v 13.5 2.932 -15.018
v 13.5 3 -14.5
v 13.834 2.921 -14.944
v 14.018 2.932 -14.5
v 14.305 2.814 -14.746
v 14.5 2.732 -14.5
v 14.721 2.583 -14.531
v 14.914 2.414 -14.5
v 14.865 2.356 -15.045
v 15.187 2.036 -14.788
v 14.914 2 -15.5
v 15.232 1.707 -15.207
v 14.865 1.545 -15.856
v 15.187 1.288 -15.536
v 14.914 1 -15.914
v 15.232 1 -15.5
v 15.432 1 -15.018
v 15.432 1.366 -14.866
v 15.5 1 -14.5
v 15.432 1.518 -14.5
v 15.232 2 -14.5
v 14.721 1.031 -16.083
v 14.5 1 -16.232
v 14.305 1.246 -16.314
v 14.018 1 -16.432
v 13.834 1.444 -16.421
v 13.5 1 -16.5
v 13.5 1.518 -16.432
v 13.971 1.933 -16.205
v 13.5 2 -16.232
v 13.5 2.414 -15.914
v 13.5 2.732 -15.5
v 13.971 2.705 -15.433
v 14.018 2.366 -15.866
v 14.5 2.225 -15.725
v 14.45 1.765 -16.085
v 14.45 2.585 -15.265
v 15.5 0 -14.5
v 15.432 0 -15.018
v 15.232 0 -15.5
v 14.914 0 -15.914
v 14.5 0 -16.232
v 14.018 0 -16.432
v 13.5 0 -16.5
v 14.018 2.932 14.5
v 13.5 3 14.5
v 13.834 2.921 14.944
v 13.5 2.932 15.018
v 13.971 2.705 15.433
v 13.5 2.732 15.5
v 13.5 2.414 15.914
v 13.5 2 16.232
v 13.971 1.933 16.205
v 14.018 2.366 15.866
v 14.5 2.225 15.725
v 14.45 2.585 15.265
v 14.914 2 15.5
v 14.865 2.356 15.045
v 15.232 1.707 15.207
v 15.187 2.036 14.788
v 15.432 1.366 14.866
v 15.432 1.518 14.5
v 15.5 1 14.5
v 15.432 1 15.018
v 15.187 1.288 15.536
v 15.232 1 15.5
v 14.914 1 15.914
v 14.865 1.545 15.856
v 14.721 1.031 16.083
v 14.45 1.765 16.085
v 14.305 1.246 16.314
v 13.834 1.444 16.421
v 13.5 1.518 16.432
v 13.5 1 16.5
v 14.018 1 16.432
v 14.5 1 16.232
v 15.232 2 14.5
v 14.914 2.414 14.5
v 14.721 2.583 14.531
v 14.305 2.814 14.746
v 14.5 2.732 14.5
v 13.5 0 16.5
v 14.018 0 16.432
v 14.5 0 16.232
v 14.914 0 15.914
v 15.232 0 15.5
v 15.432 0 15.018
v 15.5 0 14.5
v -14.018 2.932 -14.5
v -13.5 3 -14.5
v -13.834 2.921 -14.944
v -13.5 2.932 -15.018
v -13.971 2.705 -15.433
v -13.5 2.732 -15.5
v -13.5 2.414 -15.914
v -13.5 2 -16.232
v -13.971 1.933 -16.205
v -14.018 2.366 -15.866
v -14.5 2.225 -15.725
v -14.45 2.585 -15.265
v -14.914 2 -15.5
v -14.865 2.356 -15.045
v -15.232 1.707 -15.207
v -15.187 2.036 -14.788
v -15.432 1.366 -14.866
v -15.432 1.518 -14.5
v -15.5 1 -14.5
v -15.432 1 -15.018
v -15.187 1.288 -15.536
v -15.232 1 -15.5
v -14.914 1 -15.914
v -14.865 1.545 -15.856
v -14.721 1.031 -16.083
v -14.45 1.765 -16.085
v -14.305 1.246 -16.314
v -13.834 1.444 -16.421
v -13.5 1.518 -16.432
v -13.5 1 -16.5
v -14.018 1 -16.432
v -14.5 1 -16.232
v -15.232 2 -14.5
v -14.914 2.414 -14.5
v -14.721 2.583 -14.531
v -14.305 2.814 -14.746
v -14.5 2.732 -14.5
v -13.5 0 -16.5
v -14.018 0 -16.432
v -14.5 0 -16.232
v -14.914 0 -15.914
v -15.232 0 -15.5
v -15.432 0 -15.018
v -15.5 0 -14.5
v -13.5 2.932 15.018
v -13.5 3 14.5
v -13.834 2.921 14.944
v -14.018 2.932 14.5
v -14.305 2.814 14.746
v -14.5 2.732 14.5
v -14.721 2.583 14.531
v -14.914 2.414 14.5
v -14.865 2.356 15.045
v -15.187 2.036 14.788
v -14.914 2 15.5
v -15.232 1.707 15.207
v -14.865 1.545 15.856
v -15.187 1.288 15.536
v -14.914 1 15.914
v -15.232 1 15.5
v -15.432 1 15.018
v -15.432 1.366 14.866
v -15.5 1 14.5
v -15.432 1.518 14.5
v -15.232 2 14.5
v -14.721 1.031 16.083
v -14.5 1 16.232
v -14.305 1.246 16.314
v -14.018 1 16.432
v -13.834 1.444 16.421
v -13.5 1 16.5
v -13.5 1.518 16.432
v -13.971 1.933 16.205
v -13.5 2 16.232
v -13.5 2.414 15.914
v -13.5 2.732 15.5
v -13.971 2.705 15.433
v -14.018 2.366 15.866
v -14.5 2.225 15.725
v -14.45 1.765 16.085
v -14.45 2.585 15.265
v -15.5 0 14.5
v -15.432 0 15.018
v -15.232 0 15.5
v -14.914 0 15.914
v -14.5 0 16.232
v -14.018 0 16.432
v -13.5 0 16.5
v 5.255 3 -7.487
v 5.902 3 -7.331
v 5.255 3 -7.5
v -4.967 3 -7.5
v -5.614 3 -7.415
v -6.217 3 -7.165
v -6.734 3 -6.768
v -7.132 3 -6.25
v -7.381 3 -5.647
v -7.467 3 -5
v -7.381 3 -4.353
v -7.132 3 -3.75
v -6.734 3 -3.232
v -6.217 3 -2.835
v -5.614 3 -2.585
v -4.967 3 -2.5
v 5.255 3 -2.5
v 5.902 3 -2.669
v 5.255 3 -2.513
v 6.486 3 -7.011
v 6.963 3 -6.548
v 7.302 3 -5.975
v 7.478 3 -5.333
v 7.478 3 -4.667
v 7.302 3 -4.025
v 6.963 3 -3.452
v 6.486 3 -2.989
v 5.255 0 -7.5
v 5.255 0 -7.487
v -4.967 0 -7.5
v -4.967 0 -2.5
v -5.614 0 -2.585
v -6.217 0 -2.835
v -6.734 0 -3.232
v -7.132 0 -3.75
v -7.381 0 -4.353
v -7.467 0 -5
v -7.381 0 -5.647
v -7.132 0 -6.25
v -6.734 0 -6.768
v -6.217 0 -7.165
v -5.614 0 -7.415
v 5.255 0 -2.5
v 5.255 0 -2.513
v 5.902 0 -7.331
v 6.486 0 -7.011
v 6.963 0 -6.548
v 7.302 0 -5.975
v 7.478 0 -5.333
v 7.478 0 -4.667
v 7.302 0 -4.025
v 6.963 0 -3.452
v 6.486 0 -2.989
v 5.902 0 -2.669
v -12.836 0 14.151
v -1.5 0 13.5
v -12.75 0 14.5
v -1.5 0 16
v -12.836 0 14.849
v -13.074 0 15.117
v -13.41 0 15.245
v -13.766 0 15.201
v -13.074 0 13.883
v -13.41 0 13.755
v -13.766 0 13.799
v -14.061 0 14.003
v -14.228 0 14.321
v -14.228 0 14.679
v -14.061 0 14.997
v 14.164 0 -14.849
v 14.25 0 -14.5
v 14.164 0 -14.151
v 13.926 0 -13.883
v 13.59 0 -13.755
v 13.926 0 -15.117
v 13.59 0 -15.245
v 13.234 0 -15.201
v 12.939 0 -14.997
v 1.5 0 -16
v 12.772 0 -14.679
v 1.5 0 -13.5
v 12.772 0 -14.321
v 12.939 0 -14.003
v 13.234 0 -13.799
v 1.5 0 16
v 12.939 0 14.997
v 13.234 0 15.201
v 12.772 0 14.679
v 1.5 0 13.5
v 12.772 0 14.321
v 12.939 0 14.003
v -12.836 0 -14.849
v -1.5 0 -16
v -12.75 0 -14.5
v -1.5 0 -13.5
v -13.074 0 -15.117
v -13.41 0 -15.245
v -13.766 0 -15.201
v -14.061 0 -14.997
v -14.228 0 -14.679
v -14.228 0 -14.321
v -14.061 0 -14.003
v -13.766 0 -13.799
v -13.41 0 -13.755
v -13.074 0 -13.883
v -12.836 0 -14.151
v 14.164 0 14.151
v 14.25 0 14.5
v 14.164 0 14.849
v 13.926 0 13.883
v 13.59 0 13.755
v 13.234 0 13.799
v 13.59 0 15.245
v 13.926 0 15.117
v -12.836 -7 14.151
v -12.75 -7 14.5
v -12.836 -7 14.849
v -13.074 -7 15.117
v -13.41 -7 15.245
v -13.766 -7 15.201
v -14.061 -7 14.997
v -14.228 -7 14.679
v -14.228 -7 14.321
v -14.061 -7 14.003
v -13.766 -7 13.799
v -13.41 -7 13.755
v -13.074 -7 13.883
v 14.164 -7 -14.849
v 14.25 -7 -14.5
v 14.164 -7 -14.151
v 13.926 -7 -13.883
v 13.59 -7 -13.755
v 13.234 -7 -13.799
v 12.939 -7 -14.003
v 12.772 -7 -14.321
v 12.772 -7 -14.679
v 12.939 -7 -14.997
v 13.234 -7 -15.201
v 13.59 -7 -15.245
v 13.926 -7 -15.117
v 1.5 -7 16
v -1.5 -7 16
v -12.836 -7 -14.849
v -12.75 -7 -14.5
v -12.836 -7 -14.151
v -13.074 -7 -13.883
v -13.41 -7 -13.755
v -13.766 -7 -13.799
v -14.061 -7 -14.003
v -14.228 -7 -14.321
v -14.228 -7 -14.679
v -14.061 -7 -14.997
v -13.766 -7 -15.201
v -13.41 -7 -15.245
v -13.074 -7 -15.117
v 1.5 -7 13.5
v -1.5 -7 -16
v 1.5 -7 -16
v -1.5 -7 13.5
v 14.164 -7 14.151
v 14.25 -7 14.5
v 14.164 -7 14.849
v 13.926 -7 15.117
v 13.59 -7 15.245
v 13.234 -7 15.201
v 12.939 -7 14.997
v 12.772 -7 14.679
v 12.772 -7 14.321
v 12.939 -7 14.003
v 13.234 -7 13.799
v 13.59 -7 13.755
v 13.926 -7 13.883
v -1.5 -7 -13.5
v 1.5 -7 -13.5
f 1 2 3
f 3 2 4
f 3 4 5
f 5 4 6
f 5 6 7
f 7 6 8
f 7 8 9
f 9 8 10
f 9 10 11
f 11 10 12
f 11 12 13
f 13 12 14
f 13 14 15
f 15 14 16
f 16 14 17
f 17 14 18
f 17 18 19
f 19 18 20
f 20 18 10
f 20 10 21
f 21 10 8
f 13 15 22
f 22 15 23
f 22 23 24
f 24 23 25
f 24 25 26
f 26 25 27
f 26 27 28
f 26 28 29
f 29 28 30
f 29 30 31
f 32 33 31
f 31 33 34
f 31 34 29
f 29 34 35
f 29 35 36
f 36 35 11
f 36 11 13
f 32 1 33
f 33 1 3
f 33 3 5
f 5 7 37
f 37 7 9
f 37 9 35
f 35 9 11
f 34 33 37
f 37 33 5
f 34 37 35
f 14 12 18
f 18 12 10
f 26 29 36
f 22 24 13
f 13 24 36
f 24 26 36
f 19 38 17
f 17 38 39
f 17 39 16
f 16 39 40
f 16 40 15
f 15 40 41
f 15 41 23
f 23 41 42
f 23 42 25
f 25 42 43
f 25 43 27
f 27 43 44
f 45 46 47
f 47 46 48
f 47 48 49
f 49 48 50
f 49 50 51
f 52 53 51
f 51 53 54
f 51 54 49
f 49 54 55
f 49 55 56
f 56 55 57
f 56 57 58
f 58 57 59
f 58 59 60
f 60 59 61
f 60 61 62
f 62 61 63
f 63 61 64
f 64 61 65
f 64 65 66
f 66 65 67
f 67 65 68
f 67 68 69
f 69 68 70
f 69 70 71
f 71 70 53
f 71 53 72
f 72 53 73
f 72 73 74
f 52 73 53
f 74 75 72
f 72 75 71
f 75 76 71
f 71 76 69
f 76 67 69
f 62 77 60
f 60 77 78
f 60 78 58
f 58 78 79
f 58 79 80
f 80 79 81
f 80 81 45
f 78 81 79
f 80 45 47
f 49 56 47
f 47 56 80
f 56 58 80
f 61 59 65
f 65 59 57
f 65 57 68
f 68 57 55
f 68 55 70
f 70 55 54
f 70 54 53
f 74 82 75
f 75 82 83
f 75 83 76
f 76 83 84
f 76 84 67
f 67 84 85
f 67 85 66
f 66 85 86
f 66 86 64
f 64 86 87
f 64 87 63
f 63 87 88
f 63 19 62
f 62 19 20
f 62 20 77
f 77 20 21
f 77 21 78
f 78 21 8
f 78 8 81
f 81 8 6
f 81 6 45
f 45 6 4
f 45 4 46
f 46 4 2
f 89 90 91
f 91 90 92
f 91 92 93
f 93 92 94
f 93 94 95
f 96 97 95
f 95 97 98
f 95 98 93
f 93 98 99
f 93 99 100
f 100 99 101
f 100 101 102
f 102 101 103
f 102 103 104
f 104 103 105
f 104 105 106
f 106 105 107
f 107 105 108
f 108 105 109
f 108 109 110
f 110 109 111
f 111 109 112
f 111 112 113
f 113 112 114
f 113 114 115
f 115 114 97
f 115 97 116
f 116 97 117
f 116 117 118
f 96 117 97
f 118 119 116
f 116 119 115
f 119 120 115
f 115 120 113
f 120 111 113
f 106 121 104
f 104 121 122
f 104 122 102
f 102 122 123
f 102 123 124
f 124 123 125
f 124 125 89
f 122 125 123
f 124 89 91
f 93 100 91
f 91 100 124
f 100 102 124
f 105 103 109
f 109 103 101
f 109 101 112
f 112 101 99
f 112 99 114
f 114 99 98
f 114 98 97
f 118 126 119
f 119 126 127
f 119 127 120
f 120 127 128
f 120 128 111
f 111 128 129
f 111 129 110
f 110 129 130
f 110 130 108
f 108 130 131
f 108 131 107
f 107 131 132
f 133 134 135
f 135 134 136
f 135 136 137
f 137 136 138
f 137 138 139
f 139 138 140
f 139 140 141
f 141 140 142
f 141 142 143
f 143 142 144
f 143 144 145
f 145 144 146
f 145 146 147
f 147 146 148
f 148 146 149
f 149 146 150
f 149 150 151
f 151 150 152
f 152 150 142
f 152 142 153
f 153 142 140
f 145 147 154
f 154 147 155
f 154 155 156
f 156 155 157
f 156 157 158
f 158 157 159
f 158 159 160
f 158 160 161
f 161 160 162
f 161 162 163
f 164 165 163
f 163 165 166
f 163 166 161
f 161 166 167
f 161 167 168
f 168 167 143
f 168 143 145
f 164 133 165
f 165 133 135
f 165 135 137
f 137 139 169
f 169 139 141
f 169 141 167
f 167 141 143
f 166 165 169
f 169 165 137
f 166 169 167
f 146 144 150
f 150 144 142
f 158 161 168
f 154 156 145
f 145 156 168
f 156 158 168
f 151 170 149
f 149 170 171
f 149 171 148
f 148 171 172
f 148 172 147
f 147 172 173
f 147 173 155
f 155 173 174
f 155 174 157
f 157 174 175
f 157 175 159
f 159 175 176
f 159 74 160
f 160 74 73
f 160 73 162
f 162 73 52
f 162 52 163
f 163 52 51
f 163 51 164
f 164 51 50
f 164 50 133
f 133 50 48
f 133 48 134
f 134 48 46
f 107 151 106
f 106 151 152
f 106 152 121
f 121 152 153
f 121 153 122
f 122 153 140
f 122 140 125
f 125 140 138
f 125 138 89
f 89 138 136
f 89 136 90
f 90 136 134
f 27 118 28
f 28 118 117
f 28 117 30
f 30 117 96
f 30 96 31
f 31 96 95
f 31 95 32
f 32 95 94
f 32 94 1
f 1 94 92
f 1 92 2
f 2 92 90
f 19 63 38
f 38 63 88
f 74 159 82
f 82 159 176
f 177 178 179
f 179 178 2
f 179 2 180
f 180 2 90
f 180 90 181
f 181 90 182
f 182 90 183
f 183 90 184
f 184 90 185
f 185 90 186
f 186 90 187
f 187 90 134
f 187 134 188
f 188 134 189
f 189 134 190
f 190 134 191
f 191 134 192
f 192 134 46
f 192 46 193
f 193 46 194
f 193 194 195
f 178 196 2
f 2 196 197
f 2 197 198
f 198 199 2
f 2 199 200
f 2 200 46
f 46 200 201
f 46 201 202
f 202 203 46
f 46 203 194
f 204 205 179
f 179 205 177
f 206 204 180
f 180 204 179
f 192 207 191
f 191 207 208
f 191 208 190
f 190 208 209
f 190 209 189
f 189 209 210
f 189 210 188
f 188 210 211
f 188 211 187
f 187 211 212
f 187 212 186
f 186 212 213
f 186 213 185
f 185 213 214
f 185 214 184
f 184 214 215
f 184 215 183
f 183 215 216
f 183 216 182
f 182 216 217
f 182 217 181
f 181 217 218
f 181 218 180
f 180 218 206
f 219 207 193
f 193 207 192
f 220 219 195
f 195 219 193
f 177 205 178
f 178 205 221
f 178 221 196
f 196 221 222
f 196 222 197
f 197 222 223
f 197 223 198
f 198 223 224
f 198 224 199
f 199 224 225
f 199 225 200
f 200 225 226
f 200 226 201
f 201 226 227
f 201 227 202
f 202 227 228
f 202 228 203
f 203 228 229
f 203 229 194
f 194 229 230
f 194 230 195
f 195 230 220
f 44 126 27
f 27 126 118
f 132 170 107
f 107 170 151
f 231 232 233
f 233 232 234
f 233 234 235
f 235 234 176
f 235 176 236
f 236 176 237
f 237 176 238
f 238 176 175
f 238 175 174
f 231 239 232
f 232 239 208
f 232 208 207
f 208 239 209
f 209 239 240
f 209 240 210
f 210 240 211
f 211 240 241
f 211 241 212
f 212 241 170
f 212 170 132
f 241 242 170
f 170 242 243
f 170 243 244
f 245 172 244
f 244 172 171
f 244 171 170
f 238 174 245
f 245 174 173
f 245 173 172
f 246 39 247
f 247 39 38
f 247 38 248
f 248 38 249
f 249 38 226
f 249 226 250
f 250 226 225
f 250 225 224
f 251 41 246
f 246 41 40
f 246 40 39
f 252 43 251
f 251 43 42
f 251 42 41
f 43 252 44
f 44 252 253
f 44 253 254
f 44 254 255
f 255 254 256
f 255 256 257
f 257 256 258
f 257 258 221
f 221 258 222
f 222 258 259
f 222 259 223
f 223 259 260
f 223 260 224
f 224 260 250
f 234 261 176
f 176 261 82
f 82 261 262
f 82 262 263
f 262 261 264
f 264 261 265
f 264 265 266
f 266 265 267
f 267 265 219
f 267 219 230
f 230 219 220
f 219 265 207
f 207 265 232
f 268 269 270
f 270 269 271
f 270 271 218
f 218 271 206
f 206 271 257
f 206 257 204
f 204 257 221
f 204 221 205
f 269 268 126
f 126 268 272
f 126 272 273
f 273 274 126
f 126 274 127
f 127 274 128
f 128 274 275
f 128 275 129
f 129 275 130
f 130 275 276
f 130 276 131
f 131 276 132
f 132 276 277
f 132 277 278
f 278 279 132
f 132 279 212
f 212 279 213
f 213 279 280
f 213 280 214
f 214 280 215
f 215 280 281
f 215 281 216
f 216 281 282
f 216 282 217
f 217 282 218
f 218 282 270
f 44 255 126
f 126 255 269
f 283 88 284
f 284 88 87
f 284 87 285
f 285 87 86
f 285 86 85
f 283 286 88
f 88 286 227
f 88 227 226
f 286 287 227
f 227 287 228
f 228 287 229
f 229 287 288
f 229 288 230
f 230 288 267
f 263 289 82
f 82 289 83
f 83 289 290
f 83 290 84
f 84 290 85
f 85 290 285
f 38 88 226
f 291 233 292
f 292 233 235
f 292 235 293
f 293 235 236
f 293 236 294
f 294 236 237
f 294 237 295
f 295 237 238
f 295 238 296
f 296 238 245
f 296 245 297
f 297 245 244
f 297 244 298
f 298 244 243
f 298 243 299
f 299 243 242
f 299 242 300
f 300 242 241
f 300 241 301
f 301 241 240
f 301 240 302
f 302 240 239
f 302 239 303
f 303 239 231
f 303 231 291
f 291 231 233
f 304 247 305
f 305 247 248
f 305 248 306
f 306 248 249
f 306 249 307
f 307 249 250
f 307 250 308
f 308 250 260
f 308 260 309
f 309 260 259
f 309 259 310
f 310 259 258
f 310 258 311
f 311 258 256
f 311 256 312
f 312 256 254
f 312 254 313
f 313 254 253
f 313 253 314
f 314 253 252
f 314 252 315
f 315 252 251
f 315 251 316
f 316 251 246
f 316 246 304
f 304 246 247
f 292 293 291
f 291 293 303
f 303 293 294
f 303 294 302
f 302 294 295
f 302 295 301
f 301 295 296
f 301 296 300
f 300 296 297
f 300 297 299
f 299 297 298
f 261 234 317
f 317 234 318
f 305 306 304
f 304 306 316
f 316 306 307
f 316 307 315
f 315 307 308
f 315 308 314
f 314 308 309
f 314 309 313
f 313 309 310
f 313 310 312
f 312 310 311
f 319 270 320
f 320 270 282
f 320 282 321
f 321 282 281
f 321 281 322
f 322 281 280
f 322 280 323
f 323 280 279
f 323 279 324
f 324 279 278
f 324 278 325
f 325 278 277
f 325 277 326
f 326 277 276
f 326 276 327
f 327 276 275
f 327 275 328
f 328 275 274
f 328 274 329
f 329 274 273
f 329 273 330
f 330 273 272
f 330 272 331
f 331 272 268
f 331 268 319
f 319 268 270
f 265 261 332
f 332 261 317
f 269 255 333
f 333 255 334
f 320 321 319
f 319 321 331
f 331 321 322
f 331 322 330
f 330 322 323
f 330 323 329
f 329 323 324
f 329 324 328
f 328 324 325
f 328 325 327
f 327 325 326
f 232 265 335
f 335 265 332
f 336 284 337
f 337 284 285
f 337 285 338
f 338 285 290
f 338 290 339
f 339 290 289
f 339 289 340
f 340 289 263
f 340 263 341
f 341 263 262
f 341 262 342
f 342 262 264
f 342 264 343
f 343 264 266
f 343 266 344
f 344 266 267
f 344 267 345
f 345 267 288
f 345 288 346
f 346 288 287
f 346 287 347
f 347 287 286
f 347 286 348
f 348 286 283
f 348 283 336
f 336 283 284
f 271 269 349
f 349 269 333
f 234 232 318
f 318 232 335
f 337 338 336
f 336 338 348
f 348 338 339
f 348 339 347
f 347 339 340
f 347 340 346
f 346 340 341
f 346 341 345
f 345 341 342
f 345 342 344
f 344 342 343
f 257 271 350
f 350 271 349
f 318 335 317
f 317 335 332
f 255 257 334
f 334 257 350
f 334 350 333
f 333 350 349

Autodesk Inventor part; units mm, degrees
ref_plane "YZ Plane" through (0, 0, 0) normal (1, 0, 0) x (0, 1, 0)
ref_plane "XZ Plane" through (0, 0, 0) normal (0, 1, 0) x (-1, 0, 0)
ref_plane "XY Plane" through (0, 0, 0) normal (0, 0, 1) x (1, 0, 0)
sketch "Boceto1" plane through (0, 0, 0) normal (0, 1, 0) x (-1, 0, 0)
  line L0 (15.5, 16.5) -> (-15.5, 16.5)
  line L1 (-15.5, 16.5) -> (-15.5, -16.5)
  line L2 (-15.5, -16.5) -> (15.5, -16.5)
  line L3 (15.5, -16.5) -> (15.5, 16.5)
  line L4 (-15.5, 16.5) -> (15.5, -16.5) construction
  circle A0 centre (15.5, -16.5) radius 0
  line L5 (0, -20.441182) -> (0, -13.180985)
  circle A1 centre (-15.5, -16.5) radius 0
  line L6 (0, 0) -> (-6.703667, 0)
  circle A2 centre (15.5, 16.5) radius 0
  circle A3 centre (-15.5, 16.5) radius 0
  line L7 (-1.743284, -16.5) -> (-1.743284, -13.5)
  line L8 (-1.743284, -13.5) -> (-1.743284, 1.5)
  line L9 (-1.743284, 1.5) -> (-1.743284, 3.5)
  line L10 (-1.743284, 3.5) -> (-1.743284, 13.5)
  line L11 (-1.743284, 13.5) -> (-1.743284, 16.5)
  line L12 (15.5, 0) -> (12.5, 0)
  line L13 (12.5, 0) -> (-12.5, 0)
  line L14 (-12.5, 0) -> (-15.5, 0)
  line L15 (-0.653653, 1.5) -> (-0.653653, -3.5)
  line L16 (12.5, 0) -> (12.5, -5)
  line L17 (12.5, -5) -> (2.466636, -5)
  line L18 (-15.5, 0) -> (-15.5, -5)
  line L19 (-15.5, -5) -> (-12.5, -5)
  circle A4 centre (4.966636, -5) radius 2.5
  line L20 (0, -8.467064) -> (0, -3.5)
  line L21 (12.5, -5) -> (7.5, -5)
  line L22 (12.5, -5) -> (-15.5, -5)
  line L23 (-12.5, -5) -> (-7.5, -5)
  line L24 (-7.5, -5.492671) -> (-7.5, -4.332105)
  line L25 (-7.5, -7.321441) -> (-7.5, -3.5)
  line L26 (-7.5, -5) -> (-3.010459, -5)
  line L27 (-5.25523, -5) -> (-5.25523, -7.5)
  line L28 (-5.25523, -7.5) -> (-3.485236, -7.5)
  line L29 (-5.25523, -5) -> (-5.25523, -2.5)
  line L30 (-5.25523, -2.5) -> (-3.924845, -2.5)
  circle A5 centre (-5, -5) radius 2.5
  line L31 (4.966636, -7.5) -> (-5.25523, -7.5)
  line L32 (-5.25523, -2.5) -> (4.966636, -2.5)
  point P0 (-5.25523, -2.513063)
  point P1 (-5.25523, -7.486937)
  dimension "d0" = 31
  dimension "d1" = 33
  dimension "d3" = 3
  dimension "d4" = 15
  dimension "d5" = 2
  dimension "d6" = 10
  dimension "d7" = 3
  dimension "d8" = 3
  dimension "d9" = 25
  dimension "d10" = 3
  dimension "d11" = 5
  dimension "d12" = 5
  dimension "d14" = 5
  dimension "d15" = 3
  dimension "d16" = 5
  dimension "d17" = 5
  dimension "d19" = 5
  dimension "d21" = 2.5
  dimension "d22" = 2.5
sketch "Boceto1 outline for Extrusión1" plane through (0, 0, 0) normal (0, 1, 0) x (-1, 0, 0)
  line L0 (-15.5, -16.5) -> (15.5, -16.5)
  line L1 (-15.5, 16.5) -> (-15.5, -16.5)
  line L2 (15.5, -16.5) -> (15.5, 16.5)
  line L3 (15.5, 16.5) -> (-15.5, 16.5)
  arc A0 (-5.25523, -7.486937) -> (-5.25523, -2.513063) centre (-5, -5) cw
  line L4 (-5.25523, -7.5) -> (-5.25523, -7.486937)
  line L5 (-3.485236, -7.5) -> (-5.25523, -7.5)
  line L6 (4.966636, -7.5) -> (-3.485236, -7.5)
  arc A1 (4.966636, -2.5) -> (4.966636, -7.5) centre (4.966636, -5) cw
  line L7 (-3.924845, -2.5) -> (4.966636, -2.5)
  line L8 (-5.25523, -2.5) -> (-3.924845, -2.5)
  line L9 (-5.25523, -2.513063) -> (-5.25523, -2.5)
extrude "Extrusión1" add sketch "Boceto1 outline for Extrusión1" along normal blind 3
fillet "Empalme1" radius 2 8 edges at (-15.5, 1.5, 16.5) (-15.5, 3, 0) (-15.5, 1.5, -16.5) (0, 3, -16.5) (15.5, 3, 0) (0, 3, 16.5) (15.5, 1.5, 16.5) (15.5, 1.5, -16.5)
sketch "Boceto2" plane through (0, 0, 0) normal (0, -1, 0) x (1, 0, 0)
  line L0 (-13.5, -14.5) -> (13.5, -14.5)
  circle A0 centre (13.5, -14.5) radius 0.75
  line L1 (0, -0.514663) -> (0, 1.763645)
  circle A1 centre (-13.5, -14.5) radius 0.75
  line L2 (0.998187, 0) -> (-3.186461, 0)
  circle A2 centre (13.5, 14.5) radius 0.75
  circle A3 centre (-13.5, 14.5) radius 0.75
  arc A4 (15.5, 14.5) -> (13.5, 16.5) centre (13.5, 14.5) ccw
  arc A5 (-13.5, 16.5) -> (-15.5, 14.5) centre (-13.5, 14.5) ccw
  arc A6 (-15.5, -14.5) -> (-13.5, -16.5) centre (-13.5, -14.5) ccw
  arc A7 (13.5, -16.5) -> (15.5, -14.5) centre (13.5, -14.5) ccw
  line L3 (-15.5, -14.5) -> (-15.5, 14.5)
  line L4 (-15.5, -14.5) -> (-1.5, -14.5)
  line L5 (-1.5, -14.5) -> (1, -14.5)
  line L6 (13.5, -14.5) -> (13.5, -13.5)
  line L7 (13.5, -14.5) -> (13.5, 14.5)
  line L8 (13.5, -13.5) -> (-13.5, -13.5)
  line L9 (-13.5, 14.5) -> (-13.5, -14.5)
  line L10 (15.5, 14.5) -> (15.5, -14.5)
  line L11 (15.5, -13.5) -> (1.5, -13.5)
  line L12 (-15.5, -13.5) -> (-1.5, -13.5)
  line L13 (1.5, -13.5) -> (1.5, -16)
  line L14 (1.5, -16) -> (-1.5, -16)
  line L15 (-1.5, -16) -> (-1.5, -13.5)
  line L16 (-1.5, 14.5) -> (1, 14.5)
  line L17 (1.5, 13.5) -> (1.5, 16)
  line L18 (1.5, 16) -> (-1.5, 16)
  line L19 (-1.5, 16) -> (-1.5, 13.5)
  line L20 (13.5, 14.5) -> (-13.5, 14.5)
  line L21 (0.770935, 14.5) -> (1.5, 14.5)
  line L22 (-1.5, 16) -> (-1.5, 13.5)
  line L23 (1.5, 13.5) -> (-1.5, 13.5)
  dimension "d26" = 1.5
  dimension "d27" = 14
  dimension "d28" = 2.5
  dimension "d29" = 1
  dimension "d30" = 14
  dimension "d31" = 14
  dimension "d32" = 2.5
extrude "Extrusión2" add sketch "Boceto2" along normal blind 7 contours L9 A1 L0 | L0 A1 L4 | L4 A1 L9 | L15 L8 L13 L0 | L0 L13 L14 L15 | L9 L20 A3 | A3 L20 L9 | A0 L6 L0 | L0 L6 A0 | L19 L18 L17 L20 L16 | L16 L20 L17 L23 L19 | L7 L20 A2 | A2 L20 L7
properties part number "TapaCajaNodoReceptor"
